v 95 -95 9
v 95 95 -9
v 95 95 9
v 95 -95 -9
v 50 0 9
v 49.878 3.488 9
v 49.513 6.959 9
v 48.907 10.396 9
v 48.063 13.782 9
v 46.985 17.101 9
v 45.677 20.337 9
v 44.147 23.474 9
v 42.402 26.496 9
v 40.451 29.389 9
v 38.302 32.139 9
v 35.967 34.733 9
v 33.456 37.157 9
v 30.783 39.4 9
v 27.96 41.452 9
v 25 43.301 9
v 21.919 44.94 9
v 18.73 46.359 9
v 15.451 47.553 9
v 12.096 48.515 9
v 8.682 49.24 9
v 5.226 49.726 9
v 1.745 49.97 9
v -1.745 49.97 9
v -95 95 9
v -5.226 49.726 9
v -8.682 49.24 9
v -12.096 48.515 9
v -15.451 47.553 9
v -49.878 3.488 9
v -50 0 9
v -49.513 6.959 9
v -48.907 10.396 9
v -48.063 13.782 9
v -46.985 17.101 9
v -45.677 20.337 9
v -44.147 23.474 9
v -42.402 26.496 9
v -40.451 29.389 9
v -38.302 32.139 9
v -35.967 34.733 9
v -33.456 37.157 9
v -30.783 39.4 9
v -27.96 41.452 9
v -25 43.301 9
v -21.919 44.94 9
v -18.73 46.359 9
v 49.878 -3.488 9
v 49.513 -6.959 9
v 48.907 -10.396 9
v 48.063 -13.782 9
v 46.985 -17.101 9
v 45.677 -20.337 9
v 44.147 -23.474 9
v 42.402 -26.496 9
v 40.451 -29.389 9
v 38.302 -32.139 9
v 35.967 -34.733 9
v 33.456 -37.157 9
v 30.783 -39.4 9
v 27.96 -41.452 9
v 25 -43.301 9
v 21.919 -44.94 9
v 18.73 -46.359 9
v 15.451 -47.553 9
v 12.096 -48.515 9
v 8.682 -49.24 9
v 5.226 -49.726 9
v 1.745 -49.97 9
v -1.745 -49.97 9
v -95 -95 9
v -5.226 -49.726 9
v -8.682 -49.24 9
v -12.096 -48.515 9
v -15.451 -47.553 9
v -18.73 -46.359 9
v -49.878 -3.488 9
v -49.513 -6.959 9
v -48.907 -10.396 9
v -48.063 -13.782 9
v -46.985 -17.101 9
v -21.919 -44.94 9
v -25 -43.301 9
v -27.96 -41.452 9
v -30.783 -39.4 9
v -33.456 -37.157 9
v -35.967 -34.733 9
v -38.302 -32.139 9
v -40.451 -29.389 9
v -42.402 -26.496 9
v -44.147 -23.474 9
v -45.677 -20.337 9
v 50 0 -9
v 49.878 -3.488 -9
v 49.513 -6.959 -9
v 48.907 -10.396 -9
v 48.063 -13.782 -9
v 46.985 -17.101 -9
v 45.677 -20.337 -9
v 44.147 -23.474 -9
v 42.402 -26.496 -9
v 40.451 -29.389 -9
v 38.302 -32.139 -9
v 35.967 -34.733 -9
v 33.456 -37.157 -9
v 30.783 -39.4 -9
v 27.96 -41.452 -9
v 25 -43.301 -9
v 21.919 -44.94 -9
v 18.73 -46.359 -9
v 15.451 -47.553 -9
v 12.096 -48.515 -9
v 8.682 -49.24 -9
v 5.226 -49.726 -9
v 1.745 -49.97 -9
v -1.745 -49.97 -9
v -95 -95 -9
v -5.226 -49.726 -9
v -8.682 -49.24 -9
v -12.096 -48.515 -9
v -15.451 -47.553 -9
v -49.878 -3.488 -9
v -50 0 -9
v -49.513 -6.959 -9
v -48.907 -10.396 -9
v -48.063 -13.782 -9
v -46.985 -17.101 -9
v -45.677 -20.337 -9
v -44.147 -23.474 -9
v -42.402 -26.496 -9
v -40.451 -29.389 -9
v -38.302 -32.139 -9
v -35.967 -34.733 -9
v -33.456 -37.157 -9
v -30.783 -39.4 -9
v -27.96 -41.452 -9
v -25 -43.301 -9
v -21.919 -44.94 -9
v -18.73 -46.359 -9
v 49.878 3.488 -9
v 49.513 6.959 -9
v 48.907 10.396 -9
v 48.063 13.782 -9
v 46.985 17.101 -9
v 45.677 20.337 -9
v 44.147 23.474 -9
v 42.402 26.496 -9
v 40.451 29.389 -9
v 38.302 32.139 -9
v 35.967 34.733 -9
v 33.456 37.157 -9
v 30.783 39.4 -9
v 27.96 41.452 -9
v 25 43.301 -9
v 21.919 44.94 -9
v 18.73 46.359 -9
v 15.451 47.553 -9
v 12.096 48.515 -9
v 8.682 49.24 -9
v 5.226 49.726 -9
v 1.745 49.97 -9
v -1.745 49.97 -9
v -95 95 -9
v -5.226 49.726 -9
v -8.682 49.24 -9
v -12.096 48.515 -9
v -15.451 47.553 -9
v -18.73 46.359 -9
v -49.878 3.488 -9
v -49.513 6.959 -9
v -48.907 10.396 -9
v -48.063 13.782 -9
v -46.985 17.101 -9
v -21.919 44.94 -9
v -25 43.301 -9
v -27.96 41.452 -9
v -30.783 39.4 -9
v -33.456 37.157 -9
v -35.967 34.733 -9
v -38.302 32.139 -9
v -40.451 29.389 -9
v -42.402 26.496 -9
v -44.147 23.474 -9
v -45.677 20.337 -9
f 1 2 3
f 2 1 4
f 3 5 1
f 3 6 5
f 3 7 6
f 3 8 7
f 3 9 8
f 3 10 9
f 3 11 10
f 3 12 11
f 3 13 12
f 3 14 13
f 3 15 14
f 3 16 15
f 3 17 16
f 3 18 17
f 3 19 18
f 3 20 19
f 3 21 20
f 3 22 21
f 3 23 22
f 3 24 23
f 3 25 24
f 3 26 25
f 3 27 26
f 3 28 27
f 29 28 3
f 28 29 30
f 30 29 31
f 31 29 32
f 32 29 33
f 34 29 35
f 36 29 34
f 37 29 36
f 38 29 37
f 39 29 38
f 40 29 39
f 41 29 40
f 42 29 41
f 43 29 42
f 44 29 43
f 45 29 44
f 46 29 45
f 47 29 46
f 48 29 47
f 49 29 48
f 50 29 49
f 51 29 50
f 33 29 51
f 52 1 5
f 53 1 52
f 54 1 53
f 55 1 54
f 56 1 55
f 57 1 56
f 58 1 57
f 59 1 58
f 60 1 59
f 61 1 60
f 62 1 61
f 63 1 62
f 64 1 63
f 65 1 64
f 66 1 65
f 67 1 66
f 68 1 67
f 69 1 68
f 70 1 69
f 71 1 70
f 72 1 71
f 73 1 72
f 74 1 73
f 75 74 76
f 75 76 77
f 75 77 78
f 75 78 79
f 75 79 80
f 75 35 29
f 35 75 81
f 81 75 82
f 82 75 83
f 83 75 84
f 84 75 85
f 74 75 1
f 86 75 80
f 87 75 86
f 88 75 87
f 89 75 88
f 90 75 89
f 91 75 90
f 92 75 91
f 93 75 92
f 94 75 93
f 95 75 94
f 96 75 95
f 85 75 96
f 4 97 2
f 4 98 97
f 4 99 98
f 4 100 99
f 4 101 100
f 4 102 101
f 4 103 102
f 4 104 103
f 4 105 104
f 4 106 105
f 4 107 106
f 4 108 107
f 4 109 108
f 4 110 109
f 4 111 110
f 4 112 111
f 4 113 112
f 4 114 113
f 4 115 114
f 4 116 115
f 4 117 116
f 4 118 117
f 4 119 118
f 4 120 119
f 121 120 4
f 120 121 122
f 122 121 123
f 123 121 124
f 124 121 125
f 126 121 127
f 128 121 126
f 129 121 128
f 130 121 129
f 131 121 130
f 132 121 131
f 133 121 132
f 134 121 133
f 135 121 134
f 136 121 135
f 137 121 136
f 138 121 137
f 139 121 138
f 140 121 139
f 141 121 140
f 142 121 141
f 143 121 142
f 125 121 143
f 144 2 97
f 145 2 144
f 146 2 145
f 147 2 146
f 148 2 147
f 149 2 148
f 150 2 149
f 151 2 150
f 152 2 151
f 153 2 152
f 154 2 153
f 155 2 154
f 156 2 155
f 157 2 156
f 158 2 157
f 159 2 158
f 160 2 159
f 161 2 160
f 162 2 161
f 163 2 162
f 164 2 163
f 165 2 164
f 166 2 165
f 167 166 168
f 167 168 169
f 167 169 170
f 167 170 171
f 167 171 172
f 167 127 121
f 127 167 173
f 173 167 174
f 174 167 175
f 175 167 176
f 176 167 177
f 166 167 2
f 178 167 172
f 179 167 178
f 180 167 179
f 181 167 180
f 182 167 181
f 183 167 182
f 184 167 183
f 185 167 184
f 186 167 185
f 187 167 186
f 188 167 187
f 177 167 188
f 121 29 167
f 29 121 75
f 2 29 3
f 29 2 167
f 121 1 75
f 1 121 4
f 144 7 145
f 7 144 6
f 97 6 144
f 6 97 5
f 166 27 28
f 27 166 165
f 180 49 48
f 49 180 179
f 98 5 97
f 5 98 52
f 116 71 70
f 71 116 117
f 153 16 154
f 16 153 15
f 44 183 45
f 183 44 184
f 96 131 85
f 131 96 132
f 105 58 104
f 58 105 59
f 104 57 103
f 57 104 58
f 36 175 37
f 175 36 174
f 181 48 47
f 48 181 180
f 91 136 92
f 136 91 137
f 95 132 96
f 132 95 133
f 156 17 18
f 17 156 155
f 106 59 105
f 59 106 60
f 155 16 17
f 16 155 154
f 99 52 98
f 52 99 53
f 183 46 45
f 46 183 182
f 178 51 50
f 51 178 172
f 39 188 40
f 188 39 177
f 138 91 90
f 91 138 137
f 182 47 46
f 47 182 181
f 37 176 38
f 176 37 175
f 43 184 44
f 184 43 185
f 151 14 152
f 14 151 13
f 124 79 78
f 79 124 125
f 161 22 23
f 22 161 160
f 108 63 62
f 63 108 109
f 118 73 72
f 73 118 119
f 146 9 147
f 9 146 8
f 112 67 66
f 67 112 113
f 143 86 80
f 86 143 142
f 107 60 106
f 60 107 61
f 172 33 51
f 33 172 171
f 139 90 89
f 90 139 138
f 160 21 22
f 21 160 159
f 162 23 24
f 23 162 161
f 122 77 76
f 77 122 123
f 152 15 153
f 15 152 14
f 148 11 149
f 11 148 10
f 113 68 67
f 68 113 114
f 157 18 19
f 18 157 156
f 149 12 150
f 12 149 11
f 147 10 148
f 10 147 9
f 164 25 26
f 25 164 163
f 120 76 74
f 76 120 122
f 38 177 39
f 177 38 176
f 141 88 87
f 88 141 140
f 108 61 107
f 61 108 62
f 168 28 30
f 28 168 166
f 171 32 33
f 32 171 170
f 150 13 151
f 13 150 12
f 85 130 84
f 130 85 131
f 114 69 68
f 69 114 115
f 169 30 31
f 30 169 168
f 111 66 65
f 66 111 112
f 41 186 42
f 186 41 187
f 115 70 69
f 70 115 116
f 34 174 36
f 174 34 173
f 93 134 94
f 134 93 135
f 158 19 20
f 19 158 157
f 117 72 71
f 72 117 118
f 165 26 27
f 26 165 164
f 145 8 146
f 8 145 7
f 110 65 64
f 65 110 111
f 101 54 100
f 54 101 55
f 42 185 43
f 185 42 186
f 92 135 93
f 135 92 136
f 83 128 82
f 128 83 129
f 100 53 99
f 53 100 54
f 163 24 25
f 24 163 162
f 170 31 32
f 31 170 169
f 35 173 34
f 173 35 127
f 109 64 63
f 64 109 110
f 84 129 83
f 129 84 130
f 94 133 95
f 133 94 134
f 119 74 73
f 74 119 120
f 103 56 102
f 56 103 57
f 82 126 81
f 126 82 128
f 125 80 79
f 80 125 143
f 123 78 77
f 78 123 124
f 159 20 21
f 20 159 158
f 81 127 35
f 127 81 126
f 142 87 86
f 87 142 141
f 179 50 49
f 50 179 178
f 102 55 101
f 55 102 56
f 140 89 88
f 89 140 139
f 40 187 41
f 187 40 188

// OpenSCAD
/*
   George Jenson Teapot
   Milling template  
   
   By Anton Augustsson 
*/

$fn=90;  // accuracy


// ---------- Variables ----------


teapotDiameter = 100;
teapotRadius = teapotDiameter/2; 
// routerBitDepth = 3;

templateLength = 190;
templateWidth  = 190;
templateHeight = 18;



// ---------- Code ----------

difference() {        
cube(size = [
    templateWidth,
    templateLength,
    templateHeight],
    center = true);

cylinder(
    h = templateHeight+0.2, 
    r = teapotRadius,
    center = true);


}
